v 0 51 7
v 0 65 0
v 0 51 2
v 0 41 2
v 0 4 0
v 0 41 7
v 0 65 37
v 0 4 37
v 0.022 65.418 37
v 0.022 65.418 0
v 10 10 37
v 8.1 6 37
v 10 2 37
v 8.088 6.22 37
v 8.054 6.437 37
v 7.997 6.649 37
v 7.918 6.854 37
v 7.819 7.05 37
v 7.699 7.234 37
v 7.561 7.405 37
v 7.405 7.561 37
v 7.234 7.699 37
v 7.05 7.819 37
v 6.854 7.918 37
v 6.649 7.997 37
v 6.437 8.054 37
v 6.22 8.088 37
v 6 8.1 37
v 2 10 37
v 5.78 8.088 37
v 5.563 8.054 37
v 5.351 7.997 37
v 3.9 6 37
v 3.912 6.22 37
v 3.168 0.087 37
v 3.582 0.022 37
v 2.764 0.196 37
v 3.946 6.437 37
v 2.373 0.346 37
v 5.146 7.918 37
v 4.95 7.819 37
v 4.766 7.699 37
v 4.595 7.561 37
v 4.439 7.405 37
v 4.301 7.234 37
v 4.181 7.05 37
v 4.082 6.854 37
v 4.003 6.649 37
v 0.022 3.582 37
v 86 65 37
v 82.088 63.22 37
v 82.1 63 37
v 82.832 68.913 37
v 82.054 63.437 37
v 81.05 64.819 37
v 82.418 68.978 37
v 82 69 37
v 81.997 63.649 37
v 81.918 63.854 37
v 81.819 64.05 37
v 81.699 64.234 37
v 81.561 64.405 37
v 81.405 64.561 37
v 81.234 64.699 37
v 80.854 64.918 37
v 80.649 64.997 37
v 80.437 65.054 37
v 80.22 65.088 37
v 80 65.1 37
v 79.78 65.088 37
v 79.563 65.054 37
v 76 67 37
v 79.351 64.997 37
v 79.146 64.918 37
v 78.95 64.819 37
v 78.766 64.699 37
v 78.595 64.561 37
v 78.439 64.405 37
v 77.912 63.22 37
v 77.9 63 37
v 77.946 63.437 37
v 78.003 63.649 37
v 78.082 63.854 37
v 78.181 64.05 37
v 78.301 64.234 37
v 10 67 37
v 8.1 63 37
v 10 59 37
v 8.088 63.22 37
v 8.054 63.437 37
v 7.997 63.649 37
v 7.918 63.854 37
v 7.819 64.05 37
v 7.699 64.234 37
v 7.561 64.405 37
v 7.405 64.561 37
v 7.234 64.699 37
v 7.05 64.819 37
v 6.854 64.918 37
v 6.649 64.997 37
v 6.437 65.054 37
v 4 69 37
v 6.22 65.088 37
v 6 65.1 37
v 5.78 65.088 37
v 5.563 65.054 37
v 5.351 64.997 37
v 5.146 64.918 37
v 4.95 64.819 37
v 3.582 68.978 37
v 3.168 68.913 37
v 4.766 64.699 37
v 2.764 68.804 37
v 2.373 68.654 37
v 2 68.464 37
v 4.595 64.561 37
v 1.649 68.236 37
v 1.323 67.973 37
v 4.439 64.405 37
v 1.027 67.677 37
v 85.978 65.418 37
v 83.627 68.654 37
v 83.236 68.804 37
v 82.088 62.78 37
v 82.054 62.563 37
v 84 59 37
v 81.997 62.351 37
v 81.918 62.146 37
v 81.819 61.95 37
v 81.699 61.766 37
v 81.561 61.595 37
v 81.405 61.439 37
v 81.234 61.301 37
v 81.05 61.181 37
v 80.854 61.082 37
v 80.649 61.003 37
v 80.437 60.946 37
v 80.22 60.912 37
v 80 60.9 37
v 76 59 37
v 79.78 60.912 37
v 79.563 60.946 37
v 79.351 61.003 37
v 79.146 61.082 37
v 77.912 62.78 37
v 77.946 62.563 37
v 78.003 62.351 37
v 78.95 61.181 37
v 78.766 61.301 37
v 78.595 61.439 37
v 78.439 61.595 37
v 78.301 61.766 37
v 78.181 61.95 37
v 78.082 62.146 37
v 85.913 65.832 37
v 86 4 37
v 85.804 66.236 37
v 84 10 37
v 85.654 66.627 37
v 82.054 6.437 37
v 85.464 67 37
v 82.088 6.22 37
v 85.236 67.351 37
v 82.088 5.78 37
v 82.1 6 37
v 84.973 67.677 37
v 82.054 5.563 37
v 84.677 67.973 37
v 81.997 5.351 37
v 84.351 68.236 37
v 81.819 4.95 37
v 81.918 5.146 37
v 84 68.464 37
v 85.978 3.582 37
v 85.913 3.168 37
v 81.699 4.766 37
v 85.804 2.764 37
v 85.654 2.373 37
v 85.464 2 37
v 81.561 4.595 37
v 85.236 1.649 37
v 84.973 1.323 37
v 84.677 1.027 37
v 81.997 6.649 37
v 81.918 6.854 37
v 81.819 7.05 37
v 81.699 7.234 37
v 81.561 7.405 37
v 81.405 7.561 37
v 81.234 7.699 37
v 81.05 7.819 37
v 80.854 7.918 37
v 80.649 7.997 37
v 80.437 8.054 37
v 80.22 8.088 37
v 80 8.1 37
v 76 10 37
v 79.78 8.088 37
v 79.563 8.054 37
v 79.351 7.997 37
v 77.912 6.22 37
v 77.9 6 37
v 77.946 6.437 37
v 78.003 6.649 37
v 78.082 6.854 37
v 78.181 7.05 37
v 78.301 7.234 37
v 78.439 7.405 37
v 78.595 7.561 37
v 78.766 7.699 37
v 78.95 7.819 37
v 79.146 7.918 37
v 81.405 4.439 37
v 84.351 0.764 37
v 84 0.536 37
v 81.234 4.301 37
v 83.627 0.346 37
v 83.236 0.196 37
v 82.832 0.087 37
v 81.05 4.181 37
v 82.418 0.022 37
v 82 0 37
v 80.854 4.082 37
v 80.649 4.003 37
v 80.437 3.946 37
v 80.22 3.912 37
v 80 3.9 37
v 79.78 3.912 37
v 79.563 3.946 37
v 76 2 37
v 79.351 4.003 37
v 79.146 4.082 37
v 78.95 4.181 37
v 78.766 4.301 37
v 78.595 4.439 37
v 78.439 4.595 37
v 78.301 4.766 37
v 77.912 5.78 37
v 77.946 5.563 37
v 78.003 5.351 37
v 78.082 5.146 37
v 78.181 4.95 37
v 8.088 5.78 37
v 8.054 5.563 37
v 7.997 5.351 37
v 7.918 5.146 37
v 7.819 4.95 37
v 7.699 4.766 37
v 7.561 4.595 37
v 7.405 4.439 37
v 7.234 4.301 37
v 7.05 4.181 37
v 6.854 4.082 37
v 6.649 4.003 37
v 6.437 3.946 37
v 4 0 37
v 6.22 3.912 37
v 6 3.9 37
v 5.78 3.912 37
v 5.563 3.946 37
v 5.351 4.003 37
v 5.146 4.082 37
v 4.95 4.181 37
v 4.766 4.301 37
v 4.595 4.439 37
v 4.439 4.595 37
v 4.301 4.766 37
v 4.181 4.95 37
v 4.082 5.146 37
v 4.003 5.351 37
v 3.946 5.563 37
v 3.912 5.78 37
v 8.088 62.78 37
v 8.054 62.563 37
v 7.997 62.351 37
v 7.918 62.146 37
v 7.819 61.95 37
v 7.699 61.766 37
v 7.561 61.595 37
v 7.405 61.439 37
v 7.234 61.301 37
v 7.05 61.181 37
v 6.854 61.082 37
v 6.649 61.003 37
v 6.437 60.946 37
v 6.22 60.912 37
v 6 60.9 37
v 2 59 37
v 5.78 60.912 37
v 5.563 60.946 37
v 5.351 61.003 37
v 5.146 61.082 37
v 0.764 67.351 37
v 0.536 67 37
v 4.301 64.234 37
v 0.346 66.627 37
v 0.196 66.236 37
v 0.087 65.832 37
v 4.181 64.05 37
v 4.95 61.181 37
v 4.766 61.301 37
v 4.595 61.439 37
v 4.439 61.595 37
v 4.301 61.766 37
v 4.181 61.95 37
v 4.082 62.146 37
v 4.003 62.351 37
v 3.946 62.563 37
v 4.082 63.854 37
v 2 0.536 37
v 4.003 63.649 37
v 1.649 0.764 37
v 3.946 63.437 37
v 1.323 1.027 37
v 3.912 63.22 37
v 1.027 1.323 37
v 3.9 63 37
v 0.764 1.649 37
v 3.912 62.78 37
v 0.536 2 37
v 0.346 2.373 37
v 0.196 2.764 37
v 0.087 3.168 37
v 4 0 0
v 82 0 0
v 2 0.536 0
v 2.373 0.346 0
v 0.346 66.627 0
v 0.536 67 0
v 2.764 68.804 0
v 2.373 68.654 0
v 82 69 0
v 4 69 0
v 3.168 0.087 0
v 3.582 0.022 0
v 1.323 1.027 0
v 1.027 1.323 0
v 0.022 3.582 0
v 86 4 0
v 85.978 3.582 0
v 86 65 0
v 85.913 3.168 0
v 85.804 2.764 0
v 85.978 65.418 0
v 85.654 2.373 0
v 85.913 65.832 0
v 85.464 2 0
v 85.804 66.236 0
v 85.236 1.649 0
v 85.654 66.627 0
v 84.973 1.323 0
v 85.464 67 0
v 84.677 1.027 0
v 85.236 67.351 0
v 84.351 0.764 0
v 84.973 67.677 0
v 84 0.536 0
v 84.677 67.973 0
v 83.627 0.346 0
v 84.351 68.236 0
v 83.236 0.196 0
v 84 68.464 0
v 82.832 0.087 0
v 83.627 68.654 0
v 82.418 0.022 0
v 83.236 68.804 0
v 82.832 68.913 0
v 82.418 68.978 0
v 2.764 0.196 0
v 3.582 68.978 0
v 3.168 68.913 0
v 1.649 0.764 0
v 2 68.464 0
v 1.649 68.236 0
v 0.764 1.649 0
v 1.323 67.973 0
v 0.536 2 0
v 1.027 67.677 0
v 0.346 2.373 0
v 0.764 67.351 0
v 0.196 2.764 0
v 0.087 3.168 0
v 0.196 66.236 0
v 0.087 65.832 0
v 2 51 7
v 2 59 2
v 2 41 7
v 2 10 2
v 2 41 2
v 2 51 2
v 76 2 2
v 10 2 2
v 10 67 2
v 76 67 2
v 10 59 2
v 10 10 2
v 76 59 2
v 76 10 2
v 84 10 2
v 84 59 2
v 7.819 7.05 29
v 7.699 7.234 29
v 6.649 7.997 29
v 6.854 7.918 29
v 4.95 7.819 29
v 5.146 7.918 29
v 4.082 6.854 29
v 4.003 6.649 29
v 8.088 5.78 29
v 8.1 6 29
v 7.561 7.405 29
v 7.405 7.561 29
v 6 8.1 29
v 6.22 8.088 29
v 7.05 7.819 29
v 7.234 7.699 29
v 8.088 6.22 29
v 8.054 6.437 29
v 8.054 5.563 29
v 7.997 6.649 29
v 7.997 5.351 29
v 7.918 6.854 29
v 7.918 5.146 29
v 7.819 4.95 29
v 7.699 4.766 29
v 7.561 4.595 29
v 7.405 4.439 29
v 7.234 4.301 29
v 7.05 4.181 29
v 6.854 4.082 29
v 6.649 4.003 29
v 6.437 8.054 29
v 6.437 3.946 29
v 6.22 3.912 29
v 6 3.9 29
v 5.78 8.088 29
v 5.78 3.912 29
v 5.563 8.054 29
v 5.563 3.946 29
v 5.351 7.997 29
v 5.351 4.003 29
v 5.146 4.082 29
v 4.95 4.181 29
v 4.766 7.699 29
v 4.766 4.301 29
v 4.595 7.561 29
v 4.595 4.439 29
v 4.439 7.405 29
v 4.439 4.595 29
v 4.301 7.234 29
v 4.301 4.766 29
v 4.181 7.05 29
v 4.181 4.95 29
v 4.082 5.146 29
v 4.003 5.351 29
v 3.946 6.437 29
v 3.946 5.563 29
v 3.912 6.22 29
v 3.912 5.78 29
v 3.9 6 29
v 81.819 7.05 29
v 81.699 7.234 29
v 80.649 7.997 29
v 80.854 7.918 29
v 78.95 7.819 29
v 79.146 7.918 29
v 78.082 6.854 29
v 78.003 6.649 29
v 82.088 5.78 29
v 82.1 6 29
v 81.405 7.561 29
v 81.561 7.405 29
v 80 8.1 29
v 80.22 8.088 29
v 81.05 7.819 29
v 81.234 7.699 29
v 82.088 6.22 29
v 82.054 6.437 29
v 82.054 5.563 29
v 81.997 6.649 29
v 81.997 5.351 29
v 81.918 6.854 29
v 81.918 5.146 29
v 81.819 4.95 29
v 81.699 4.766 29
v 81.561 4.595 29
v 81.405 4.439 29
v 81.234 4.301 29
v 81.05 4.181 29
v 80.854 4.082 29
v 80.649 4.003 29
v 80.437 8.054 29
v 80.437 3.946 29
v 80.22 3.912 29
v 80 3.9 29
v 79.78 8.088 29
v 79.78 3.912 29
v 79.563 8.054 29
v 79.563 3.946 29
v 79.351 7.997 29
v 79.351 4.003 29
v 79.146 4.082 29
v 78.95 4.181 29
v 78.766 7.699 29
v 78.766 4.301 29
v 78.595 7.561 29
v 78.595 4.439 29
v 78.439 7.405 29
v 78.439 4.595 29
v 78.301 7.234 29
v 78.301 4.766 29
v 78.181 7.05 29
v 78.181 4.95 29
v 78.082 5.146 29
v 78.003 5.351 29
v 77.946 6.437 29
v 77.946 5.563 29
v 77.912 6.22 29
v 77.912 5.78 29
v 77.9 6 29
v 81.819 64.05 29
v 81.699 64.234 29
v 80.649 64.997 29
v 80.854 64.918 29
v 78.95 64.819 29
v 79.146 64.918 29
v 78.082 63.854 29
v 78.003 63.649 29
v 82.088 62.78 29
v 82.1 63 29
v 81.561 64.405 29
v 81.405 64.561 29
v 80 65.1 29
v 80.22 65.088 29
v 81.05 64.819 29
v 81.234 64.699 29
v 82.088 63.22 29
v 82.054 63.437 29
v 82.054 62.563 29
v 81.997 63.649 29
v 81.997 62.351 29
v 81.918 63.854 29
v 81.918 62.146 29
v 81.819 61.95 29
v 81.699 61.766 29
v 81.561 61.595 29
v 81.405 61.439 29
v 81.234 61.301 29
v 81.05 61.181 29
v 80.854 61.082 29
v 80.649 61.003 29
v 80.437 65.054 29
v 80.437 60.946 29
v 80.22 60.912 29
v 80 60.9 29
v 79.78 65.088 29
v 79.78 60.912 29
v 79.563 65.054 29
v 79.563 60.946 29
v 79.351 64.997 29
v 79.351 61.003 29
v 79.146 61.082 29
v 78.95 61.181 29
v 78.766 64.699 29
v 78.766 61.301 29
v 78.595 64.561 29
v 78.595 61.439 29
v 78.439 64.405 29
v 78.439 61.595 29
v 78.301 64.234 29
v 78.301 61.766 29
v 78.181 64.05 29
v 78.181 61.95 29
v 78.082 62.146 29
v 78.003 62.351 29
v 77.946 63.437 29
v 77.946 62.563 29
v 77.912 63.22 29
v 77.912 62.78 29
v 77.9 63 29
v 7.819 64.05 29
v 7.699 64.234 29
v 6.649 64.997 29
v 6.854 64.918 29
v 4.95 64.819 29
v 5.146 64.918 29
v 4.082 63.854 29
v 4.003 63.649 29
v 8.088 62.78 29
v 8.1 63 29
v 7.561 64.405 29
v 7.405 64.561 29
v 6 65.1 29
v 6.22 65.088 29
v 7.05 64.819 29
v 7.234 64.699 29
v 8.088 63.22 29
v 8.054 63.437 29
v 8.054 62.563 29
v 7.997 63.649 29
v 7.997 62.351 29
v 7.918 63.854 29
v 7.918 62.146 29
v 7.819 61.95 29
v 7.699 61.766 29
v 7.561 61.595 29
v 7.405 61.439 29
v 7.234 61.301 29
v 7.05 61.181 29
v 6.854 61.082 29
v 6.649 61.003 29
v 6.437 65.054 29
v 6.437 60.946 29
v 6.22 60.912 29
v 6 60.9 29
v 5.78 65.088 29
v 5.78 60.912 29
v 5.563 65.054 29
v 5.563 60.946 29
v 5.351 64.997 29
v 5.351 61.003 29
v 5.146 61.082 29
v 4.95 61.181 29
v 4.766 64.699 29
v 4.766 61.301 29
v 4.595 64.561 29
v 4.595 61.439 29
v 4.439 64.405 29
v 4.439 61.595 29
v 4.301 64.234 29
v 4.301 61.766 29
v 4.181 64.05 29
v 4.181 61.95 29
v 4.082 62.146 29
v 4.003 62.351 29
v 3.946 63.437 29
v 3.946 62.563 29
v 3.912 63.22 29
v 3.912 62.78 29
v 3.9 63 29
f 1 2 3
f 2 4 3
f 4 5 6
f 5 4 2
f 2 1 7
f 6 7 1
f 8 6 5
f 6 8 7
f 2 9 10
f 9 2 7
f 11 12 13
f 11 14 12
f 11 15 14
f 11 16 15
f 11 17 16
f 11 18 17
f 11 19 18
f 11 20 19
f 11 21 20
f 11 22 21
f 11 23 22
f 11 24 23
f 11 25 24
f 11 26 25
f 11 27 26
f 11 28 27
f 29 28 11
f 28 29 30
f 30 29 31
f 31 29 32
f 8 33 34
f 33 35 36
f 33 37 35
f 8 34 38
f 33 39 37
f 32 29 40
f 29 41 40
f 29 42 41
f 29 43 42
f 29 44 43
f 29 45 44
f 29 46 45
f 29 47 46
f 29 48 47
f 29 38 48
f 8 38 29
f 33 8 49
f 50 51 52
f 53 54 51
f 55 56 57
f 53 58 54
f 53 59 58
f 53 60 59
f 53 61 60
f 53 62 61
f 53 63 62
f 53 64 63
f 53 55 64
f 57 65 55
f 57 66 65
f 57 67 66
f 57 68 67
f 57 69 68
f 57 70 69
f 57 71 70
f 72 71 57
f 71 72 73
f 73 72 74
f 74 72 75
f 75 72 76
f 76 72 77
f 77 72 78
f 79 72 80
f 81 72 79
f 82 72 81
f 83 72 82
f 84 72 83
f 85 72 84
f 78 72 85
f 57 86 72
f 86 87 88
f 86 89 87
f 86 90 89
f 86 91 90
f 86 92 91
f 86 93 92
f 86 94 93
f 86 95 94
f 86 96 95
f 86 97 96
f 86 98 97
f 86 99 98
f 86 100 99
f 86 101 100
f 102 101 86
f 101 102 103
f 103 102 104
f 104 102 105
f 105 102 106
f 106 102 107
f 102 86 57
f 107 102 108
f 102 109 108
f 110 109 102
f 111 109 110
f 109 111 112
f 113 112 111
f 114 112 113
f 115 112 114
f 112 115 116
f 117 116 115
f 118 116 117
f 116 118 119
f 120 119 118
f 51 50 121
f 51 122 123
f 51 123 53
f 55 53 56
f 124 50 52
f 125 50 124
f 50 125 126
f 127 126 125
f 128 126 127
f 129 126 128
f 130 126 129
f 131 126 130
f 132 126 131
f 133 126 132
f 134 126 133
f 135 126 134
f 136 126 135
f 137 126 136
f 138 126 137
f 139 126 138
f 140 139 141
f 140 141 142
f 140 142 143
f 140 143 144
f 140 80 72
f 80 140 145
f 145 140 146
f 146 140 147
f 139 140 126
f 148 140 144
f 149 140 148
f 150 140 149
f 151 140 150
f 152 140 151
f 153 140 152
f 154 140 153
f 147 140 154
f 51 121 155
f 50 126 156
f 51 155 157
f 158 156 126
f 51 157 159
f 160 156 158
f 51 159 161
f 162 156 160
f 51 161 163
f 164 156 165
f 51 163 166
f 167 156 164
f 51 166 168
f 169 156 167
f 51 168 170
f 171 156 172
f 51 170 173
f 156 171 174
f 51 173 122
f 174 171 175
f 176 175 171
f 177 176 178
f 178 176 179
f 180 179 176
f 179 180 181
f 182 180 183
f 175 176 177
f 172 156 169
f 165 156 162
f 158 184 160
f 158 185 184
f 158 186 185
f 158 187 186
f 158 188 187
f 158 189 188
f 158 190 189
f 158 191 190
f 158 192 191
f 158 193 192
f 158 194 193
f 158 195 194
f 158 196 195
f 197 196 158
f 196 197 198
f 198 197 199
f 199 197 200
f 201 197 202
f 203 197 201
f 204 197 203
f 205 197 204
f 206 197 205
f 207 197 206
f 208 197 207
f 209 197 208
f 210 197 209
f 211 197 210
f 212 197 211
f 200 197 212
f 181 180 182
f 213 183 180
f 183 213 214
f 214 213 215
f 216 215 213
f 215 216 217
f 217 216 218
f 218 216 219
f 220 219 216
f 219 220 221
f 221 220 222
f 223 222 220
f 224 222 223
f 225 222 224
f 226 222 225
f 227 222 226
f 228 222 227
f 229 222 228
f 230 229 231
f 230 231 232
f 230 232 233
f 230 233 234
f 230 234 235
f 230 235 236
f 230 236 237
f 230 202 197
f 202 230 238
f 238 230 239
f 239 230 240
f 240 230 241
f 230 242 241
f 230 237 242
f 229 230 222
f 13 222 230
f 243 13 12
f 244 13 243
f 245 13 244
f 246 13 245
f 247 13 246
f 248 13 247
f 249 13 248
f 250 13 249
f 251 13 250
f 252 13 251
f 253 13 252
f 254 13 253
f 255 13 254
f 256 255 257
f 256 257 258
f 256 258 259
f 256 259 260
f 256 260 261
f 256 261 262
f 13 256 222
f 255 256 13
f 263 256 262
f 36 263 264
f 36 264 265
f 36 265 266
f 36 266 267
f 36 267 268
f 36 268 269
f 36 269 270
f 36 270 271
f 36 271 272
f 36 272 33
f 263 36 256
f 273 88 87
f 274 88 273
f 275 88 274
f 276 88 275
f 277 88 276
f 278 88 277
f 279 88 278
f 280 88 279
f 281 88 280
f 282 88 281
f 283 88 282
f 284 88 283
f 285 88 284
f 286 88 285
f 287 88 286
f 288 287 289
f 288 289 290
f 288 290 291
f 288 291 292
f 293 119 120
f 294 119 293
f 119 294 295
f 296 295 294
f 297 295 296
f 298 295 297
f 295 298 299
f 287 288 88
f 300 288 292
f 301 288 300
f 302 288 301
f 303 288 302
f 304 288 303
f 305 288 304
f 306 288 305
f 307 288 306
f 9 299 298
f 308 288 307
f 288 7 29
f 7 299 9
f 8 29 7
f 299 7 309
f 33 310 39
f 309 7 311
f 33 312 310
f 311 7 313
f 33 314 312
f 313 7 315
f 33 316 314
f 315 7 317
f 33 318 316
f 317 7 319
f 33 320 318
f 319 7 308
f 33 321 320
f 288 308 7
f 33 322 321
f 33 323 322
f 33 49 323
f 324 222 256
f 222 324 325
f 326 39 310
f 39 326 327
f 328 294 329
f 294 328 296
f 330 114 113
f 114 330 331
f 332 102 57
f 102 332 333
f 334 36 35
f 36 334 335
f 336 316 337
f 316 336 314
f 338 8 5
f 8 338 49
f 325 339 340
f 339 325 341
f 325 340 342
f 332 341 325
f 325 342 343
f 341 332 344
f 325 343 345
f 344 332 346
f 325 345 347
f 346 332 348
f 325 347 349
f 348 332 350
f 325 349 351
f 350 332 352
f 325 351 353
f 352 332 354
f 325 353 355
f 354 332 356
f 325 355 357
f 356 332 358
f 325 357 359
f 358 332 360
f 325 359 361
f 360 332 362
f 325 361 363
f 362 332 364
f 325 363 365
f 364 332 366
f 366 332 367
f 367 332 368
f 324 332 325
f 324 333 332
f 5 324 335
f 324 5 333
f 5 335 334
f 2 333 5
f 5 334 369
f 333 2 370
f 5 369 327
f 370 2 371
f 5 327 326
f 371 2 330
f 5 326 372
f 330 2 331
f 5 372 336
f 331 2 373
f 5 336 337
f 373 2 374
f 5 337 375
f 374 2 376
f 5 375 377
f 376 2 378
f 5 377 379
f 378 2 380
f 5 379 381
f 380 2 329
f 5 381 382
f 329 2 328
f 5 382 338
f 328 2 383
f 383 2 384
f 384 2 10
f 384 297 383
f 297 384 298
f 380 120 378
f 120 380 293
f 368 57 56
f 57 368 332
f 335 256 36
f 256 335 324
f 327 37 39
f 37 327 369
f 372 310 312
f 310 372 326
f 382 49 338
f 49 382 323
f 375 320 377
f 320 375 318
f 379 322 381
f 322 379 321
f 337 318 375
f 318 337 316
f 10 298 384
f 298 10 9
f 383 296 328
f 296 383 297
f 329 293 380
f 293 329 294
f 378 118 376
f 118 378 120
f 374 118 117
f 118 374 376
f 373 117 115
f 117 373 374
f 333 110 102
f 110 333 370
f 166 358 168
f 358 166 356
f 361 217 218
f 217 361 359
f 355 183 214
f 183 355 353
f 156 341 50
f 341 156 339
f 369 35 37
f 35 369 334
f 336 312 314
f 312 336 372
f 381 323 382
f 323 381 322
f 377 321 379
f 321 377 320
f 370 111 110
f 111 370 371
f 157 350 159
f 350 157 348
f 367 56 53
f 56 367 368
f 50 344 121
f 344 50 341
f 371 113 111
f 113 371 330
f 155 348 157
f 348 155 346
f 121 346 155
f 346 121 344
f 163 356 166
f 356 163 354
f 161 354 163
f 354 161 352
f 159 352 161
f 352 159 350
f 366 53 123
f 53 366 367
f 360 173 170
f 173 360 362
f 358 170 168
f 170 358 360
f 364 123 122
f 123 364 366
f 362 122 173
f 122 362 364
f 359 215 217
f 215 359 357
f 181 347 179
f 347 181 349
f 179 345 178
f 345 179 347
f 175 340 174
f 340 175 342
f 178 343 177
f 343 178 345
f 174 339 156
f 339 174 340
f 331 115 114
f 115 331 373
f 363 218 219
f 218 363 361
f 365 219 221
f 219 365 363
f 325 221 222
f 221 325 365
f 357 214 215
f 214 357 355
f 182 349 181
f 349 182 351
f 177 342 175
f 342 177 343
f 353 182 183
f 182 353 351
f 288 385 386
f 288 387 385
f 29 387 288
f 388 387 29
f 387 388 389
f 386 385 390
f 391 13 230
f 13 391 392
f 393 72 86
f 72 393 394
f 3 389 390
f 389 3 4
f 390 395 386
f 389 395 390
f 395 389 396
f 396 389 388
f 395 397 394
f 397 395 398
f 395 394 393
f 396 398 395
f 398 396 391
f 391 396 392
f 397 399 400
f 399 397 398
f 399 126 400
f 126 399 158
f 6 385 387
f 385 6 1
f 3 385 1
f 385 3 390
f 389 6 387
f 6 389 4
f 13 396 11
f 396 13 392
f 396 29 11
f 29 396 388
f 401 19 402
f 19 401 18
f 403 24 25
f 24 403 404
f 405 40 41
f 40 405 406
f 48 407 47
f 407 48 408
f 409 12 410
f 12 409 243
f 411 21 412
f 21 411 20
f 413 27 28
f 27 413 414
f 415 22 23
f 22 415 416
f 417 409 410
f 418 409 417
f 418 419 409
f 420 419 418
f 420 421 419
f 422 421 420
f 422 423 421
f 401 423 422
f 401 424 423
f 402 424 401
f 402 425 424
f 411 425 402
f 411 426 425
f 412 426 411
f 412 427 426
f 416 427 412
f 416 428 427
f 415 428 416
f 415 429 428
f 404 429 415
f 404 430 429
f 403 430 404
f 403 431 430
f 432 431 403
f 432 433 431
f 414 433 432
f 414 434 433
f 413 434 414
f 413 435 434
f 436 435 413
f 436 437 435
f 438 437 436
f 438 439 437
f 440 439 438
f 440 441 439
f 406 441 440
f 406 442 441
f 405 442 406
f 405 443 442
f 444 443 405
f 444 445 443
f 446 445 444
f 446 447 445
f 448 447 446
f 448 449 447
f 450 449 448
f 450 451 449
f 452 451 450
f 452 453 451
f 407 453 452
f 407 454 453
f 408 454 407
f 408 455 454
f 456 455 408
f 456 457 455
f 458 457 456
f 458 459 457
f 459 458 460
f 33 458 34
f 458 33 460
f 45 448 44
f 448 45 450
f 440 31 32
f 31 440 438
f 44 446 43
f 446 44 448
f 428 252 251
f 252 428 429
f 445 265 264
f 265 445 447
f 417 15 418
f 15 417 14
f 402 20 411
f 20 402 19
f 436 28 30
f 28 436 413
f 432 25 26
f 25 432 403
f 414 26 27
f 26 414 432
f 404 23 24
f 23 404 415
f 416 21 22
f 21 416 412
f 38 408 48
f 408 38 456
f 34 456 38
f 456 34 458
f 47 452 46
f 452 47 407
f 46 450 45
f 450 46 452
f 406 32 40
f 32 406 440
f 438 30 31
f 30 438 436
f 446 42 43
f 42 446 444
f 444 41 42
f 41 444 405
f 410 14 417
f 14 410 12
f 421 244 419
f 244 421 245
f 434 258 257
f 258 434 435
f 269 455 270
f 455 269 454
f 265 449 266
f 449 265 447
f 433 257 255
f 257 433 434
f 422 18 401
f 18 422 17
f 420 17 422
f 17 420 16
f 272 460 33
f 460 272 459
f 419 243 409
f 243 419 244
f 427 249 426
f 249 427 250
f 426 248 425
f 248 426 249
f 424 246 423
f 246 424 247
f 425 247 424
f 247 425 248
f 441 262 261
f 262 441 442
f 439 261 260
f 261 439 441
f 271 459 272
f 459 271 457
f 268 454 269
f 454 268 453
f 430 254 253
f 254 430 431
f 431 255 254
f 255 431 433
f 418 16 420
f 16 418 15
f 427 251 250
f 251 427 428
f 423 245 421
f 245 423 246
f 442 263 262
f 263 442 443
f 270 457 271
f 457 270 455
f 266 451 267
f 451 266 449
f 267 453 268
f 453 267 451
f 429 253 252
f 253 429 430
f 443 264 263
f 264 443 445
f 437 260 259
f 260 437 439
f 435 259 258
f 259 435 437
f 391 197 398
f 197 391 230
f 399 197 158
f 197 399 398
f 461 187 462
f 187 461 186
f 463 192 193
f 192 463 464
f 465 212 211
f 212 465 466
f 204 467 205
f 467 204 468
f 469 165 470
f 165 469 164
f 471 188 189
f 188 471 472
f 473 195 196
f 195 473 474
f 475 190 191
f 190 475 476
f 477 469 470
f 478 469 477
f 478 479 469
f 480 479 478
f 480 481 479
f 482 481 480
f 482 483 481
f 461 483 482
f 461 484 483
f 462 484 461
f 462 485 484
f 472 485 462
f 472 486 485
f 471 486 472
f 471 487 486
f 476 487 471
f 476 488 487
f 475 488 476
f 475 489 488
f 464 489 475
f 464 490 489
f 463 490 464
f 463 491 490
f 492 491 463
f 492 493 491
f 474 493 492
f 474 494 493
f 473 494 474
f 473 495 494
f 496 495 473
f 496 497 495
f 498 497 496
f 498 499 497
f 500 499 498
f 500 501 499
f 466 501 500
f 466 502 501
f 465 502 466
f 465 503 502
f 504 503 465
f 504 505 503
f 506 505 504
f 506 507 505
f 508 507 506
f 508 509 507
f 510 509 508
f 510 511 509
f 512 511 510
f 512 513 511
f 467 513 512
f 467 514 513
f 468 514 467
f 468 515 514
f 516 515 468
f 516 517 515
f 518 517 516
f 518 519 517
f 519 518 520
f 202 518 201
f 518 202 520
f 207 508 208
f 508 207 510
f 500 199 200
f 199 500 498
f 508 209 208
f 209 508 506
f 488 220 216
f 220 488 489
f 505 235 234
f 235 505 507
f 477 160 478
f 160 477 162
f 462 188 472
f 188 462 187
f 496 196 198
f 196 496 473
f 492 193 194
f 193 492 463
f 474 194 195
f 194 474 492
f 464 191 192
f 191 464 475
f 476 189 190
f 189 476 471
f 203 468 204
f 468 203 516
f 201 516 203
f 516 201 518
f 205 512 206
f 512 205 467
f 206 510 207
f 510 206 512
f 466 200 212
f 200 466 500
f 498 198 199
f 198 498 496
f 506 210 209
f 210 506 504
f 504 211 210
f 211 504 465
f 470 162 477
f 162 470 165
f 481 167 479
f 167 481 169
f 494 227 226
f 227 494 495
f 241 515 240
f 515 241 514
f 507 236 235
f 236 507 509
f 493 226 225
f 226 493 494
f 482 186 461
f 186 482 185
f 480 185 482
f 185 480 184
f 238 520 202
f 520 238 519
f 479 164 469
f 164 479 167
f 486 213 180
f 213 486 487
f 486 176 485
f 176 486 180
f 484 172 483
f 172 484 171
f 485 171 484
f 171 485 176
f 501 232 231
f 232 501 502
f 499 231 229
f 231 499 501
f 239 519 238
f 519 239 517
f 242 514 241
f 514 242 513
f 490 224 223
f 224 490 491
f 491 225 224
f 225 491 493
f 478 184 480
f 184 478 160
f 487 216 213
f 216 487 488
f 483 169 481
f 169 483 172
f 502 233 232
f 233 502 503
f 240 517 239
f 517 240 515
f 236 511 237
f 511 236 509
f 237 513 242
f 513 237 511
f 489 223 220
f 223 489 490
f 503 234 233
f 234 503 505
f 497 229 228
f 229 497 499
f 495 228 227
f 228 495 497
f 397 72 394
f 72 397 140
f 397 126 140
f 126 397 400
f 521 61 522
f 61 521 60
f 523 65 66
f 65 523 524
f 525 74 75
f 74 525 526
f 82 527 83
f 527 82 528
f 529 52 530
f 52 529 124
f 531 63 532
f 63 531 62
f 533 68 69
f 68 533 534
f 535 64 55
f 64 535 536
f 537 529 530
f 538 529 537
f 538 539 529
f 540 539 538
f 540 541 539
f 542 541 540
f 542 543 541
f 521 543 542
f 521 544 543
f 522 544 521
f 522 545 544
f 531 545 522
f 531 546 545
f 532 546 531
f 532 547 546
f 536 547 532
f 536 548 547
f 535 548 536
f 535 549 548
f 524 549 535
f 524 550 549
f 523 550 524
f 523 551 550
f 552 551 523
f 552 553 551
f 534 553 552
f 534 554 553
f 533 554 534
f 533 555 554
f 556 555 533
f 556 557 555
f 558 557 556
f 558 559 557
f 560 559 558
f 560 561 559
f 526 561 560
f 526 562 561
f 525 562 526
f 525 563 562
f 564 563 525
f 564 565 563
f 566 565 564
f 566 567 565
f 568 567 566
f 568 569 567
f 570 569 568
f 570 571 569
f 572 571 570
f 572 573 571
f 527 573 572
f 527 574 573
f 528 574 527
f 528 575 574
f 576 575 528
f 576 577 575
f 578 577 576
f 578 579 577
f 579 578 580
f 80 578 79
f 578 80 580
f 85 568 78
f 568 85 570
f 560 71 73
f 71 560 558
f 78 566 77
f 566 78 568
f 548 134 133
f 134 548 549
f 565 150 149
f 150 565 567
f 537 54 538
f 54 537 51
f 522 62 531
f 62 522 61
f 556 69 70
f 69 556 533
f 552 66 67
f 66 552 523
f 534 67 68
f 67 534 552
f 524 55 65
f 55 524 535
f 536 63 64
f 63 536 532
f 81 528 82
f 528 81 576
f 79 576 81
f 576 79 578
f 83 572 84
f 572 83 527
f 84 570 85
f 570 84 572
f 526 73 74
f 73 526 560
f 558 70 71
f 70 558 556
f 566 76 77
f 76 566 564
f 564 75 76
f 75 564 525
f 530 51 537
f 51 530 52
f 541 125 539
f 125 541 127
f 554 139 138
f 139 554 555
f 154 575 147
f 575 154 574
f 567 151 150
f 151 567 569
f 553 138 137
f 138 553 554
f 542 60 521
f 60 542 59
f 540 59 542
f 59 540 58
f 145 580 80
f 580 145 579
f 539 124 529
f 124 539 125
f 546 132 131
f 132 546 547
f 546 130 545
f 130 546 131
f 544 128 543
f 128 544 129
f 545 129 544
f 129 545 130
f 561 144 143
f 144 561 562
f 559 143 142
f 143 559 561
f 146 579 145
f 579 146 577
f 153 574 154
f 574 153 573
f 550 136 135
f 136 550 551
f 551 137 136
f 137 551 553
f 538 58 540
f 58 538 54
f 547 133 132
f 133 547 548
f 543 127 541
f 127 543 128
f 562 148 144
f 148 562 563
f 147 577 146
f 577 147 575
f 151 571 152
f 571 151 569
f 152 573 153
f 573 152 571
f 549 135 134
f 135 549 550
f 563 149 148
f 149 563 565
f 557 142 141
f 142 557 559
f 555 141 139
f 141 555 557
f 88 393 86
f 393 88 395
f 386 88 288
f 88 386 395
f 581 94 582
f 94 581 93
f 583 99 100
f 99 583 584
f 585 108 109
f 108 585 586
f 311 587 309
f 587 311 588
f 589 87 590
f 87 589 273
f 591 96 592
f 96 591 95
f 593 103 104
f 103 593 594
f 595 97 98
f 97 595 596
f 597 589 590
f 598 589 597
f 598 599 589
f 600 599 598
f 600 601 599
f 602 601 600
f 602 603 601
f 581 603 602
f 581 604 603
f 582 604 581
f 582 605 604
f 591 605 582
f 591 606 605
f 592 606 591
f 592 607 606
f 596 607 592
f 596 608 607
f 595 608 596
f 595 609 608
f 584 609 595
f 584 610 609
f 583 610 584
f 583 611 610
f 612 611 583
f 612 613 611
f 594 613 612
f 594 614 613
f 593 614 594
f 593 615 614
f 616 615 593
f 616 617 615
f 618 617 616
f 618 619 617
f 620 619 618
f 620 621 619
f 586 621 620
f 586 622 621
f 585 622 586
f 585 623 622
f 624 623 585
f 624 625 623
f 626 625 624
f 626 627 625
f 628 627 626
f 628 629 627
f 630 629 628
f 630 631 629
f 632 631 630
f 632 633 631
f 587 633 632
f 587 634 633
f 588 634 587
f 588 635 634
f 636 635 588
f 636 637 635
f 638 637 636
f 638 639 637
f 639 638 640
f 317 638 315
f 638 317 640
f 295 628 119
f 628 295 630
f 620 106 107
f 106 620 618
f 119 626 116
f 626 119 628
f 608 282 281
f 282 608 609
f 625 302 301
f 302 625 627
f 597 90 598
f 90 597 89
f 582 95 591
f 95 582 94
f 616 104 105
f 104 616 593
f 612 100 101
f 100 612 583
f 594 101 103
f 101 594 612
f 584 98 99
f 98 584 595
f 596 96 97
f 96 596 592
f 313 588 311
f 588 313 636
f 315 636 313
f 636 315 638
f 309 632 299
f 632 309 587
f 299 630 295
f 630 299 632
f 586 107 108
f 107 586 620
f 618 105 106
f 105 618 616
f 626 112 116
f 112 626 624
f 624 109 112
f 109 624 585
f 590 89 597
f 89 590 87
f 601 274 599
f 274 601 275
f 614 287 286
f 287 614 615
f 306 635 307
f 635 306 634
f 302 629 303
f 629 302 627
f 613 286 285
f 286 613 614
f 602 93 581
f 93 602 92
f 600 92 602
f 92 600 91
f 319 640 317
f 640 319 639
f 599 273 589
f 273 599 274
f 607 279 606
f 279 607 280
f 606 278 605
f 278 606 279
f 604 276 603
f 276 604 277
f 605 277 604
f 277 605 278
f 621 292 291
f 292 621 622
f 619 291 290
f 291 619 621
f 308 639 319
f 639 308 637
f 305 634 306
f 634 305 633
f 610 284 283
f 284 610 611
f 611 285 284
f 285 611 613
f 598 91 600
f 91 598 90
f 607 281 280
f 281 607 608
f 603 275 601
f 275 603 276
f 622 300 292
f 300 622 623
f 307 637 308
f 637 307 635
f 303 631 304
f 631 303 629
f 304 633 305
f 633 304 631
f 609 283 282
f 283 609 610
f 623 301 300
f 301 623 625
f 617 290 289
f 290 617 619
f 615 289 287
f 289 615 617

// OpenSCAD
// --- PARAMETRELER ---
$fn = 60;
wall = 2.0;
internal_w = 82;
internal_h = 65;
internal_d = 35;
clearance = 0.5;
box_radius = 4.0;

// Kılavuz Kenarı (Lip) Parametreleri
lip_height = 1.5;     // Kapağın içine doğru giren çıkıntı
lip_clearance = 0.3;  // Rahat geçmesi için bırakılan tolerans

// Köşe Sütunları
pillar_s = 8;
insert_dia = 4.2;
insert_depth = 8; 

// Ekran Montajı (Waveshare 1.54")
disp_pcb_w = 48;
disp_pcb_h = 33;
disp_pattern_x = 43;
disp_pattern_y = 28;

// Delik Çapları
disp_screw_hole = 0.0; // M3 vidanın geçmesi için
disp_countersink = 5.0; // M3 vida başı için

// --- YARDIMCI MODÜL: Yuvarlatılmış Dikdörtgen ---
module rounded_box(w, h, d, r) {
    hull() {
        translate([r, r, 0]) cylinder(r=r, h=d);
        translate([w-r, r, 0]) cylinder(r=r, h=d);
        translate([r, h-r, 0]) cylinder(r=r, h=d);
        translate([w-r, h-r, 0]) cylinder(r=r, h=d);
    }
}

module body() {
    difference() {
        // Dış Kabuk (Yuvarlatılmış)
        rounded_box(internal_w + 2*wall, internal_h + 2*wall, internal_d + wall, box_radius);
        
        translate([wall, wall, wall])
            rounded_box(internal_w, internal_h, internal_d + 1, box_radius - wall);
        
        // USB-C Kesimi
        translate([-1, 39 + wall, wall])
            cube([wall + 2, 10, 5]);
    }

    for(pos = [[wall, wall], 
               [internal_w + wall - pillar_s, wall], 
               [internal_w + wall - pillar_s, internal_h + wall - pillar_s], 
               [wall, internal_h + wall - pillar_s]]) {
        translate([pos[0], pos[1], wall])
        difference() {
            cube([pillar_s, pillar_s, internal_d]);
            translate([pillar_s/2, pillar_s/2, internal_d - insert_depth])
                cylinder(d=insert_dia, h=insert_depth + 1);
        }
    }
}

body();
